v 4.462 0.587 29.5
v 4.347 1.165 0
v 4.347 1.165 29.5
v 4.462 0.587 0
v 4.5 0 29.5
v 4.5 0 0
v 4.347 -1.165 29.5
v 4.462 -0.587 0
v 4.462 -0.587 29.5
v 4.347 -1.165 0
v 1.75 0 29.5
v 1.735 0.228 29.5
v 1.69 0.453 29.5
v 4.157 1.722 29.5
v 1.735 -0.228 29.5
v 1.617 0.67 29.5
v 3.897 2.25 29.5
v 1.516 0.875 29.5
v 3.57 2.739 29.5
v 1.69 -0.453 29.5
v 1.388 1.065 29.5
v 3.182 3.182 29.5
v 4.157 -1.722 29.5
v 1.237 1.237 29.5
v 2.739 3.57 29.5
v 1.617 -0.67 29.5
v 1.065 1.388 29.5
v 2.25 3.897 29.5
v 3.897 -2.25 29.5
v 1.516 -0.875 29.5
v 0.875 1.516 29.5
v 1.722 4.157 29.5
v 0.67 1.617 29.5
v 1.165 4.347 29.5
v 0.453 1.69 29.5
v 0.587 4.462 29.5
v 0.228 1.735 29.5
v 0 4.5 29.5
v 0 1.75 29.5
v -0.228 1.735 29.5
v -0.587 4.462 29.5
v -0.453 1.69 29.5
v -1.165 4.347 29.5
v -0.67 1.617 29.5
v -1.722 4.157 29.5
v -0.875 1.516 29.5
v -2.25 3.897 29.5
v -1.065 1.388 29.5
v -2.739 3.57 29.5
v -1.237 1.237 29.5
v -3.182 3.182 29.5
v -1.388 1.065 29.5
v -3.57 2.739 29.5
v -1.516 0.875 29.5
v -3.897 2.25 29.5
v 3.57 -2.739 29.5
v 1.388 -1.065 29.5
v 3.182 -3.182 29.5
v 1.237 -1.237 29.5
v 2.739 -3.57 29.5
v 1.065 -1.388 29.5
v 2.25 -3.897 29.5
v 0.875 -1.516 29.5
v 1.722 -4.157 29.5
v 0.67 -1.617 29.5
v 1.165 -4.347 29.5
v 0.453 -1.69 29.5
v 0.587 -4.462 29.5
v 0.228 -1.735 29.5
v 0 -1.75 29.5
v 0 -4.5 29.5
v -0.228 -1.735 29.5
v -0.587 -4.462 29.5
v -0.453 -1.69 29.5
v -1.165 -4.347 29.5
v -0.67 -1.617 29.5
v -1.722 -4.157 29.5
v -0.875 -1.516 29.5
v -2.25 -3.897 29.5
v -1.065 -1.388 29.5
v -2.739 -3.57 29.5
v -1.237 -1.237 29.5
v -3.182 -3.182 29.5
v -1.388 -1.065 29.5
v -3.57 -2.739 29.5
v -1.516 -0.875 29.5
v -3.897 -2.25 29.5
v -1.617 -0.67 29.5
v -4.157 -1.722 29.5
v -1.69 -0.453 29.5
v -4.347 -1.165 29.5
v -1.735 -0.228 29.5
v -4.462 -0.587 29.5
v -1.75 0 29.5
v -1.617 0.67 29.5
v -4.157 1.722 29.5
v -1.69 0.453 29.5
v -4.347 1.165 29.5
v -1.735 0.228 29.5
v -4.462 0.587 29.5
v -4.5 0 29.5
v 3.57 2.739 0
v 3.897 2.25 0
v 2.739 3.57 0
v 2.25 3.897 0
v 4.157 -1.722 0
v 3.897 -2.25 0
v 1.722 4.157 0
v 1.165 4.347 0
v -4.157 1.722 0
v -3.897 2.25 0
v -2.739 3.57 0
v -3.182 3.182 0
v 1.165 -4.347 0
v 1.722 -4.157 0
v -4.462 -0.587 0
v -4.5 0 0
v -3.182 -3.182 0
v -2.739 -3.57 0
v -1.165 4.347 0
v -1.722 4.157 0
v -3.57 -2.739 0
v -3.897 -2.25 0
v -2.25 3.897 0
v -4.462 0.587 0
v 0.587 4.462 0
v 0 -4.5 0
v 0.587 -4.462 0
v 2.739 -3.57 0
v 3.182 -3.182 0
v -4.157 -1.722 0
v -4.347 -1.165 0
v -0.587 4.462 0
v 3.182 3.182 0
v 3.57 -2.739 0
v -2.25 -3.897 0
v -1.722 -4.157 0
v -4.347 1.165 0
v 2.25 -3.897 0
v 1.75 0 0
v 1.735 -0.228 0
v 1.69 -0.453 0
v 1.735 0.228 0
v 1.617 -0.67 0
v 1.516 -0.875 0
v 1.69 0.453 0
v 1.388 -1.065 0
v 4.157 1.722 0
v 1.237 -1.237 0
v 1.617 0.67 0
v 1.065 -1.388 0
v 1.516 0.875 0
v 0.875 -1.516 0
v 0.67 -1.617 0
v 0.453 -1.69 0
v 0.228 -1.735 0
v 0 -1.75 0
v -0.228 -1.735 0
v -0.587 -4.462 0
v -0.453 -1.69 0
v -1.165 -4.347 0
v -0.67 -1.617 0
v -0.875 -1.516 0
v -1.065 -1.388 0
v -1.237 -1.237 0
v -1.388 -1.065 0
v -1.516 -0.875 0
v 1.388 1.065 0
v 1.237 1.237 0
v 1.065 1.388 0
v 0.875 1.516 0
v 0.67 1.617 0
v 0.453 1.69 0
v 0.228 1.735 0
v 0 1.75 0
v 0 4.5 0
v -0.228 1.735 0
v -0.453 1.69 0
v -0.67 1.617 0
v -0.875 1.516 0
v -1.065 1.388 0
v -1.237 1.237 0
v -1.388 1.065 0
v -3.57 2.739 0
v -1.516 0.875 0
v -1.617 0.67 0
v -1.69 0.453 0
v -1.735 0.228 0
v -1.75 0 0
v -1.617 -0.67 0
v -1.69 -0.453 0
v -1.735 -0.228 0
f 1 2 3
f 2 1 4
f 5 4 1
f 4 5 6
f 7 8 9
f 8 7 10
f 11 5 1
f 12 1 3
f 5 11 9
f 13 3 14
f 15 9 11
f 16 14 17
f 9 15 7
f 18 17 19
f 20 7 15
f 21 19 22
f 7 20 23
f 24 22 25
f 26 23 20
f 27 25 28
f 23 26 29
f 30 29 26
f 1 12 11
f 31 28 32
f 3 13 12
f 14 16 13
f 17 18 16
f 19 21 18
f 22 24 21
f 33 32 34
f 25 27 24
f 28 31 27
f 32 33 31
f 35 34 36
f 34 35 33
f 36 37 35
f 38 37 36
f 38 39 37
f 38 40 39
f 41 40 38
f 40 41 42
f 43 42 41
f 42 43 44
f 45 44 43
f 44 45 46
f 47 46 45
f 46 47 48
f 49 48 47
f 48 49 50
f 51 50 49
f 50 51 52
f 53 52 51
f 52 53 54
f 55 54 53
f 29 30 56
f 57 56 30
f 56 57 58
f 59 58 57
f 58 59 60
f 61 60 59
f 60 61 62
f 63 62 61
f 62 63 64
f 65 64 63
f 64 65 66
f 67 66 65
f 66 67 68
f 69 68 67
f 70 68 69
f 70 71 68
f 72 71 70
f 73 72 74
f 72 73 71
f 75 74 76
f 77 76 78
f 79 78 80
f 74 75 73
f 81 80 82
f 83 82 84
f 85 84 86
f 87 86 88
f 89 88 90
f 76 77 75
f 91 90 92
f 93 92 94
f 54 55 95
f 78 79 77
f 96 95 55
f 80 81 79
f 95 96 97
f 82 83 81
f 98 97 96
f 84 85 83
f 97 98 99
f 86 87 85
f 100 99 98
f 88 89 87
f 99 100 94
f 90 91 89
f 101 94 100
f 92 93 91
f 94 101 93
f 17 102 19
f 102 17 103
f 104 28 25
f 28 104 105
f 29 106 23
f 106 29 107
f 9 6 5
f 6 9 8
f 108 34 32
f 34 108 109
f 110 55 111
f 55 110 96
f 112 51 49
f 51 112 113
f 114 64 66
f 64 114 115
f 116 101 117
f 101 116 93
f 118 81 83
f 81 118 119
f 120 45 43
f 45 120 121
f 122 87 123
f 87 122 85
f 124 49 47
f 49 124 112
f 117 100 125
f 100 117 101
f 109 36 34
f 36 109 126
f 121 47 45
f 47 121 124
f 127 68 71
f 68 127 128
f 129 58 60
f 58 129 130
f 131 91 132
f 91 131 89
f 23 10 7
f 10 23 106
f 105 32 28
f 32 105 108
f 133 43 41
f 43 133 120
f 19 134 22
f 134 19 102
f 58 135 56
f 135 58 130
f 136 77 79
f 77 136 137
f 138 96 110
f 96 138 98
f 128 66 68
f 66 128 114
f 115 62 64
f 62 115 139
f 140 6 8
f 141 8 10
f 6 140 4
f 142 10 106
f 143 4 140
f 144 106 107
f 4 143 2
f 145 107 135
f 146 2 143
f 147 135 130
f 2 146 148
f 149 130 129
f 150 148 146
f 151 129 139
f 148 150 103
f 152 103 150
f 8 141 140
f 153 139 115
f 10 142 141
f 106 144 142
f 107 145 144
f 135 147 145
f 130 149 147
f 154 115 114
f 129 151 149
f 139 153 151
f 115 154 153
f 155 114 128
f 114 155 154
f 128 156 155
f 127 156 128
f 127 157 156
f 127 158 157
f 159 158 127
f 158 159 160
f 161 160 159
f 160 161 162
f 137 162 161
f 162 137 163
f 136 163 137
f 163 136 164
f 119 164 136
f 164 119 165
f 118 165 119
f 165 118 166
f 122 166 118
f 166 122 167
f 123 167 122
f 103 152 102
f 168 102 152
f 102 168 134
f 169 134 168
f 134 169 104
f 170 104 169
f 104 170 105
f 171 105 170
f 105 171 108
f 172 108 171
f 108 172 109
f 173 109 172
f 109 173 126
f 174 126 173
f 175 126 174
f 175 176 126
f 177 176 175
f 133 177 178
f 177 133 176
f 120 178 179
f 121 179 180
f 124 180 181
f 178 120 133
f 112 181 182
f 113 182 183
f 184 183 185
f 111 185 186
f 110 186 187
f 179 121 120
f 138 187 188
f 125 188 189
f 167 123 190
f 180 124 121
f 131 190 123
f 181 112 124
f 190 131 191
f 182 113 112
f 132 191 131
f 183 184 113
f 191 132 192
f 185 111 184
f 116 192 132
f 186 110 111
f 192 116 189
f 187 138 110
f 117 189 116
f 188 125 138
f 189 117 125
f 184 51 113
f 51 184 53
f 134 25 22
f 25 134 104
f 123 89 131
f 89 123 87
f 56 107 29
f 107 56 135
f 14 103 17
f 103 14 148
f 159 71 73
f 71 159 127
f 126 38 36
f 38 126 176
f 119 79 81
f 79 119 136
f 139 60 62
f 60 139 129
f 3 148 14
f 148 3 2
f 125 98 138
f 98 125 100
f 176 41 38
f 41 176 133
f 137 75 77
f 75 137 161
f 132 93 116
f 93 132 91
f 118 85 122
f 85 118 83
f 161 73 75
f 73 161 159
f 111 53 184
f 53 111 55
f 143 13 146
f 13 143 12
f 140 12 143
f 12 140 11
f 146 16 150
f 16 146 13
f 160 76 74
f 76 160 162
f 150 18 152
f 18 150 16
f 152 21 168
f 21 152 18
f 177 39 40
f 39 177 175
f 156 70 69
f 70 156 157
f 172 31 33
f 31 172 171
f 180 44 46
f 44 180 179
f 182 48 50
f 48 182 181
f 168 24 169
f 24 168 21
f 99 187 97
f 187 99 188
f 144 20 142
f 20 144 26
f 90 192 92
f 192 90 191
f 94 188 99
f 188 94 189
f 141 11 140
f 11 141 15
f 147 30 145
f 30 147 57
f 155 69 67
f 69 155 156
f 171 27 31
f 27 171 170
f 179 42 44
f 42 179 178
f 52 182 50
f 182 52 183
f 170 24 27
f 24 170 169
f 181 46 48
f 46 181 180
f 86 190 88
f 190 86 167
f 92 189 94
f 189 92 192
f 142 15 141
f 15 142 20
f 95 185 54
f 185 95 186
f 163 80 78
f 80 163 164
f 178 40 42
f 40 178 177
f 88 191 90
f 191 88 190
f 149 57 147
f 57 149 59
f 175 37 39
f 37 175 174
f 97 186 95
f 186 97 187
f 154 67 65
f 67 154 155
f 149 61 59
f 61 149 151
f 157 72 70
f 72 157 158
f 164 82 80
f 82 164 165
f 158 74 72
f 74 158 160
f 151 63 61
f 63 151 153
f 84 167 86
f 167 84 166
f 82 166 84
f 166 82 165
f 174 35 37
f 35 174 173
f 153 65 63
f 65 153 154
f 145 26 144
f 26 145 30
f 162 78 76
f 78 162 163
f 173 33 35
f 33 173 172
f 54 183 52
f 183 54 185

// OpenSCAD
// file: parameters.scad
// =============================================================================
// Gen-CA — nightly 2026-10-13 (physics_scorer, honest magpylib watts)
// Break the plate limit instead of the physics: the 2026-10-11 scans showed watts keep rising with machine size, but Ø194 was the largest one-piece stator/rotor set that fits one 410 mm plate. Gen-CA makes the steel disc the structural rotor and prints the magnet carrier as 8 bolt-on arcs per rotor plus a separate D-flat hub, opens the stator centre, and prints the 12 bobbin bases in place inside their stator bays, so a much bigger R84 / Ø226 machine (bobbins r64–104, 4.95 mm copper, 7.55 mm magnet gap) still packs on ONE plate.
// Clocking 0 deg (magnets N facing S) + D-flat keyed bore + index notch + flip-symmetric hole map.
// Windable 2-piece bobbin; turns = physics_scorer turns_fit; copper only between flanges.
// Steel back-iron: 2× Ø194 × 4.76 mm (3/16") mild-steel discs (steel_backiron_disc.dxf); magnets sit ON the steel
// (through-pockets) -> score with --back-iron. Night 2026-10-13.
// =============================================================================
topology            = "dual_rotor";

// --- Wire / winding (physics_scorer winding-fit) -------------------------------
wire_awg            = 26;
wire_od             = 0.45;     // insulated OD mm (bare 0.405)
fill_realistic      = 0.65;     // insulated-wire area / window (DENSE layered wind with a jig; scorer cap 0.65)
turns               = 366;       // = physics_scorer turns_fit (do NOT raise)
coil_former_type    = "bobbin";
coil_core_inset     = 18.10;     // radial copper build: hub = copper boundary inset by this
wind_build_axial    = 0.0;      // nothing proud of the flanges
wind_build_radial   = 0.0;

// --- Bobbin (base + lid) ---------------------------------------------------------
coil_id_r           = 64.00;    // copper boundary sector
coil_od_r           = 104.00;
span_deg            = 26.87;    // = pitch - 2*asin((wall+0.85)/coil_id_r) -> >=1.2 mm stator web
former_web          = 4.95;     // copper height between flanges (TALL copper: steel keeps Bz up)
flange_t            = 0.80;     // >= 0.8 mm FDM wall rule (tall winds push on the flanges)
wall                = 0.80;     // flange lip beyond copper
former_bare_h       = former_web + 2 * flange_t;
coil_envelope_h     = former_bare_h + 2 * wind_build_axial;
tab_w               = 7.0;
tab_len             = 7.0;
tab_h               = former_bare_h / 2;
pin_d               = 1.9;      // 1.75 mm filament locating pin
coil_mount_r        = coil_od_r + 0.2 + 4.0;
lead_y              = 1.6;
lead_slot_w         = 0.9;
lead_groove_d       = 0.6;

// --- Gap -------------------------------------------------------------------------
run_clear           = 0.50;     // rotor face -> flange
gap_spacer_h        = run_clear + wind_build_axial;
m2m                 = coil_envelope_h + 2 * run_clear;   // rotor face to rotor face (= gap_sleeve length)

// --- Stator ----------------------------------------------------------------------
coil_stations       = 12;
bay_clear           = 0.35;     // 0.35 mm: bobbin BASES print IN PLACE inside the stator bays (print-in-place gap), then pop out
stator_thick        = former_bare_h;                        // bobbins flush both faces
stator_od           = 226;
shaft_clear_stator  = 14.0;     // stator is static; gap sleeve OD 12 spins inside
stator_ir           = 58.85;    // ANNULAR stator: open centre (nested one-plate pack); inner rim 4.0 mm

// --- Rotor(s) --------------------------------------------------------------------
magnet_Br           = 1.43;     // N52
magnet_d_large      = 20.0;
magnet_h_large      = 5.0;      // one O20x5 per pocket
magnet_h_small      = 5.0;      // unused: no O5 pockets in this kit
halbach_magnetisation = "none";  // NO O5 assist magnets in this kit (scan: they lower the 4-pole score)
rotor_b_same_axis   = true;     // same-index magnets share one axis: N faces S across the gap
large_pocket_d      = 20.3;
small_pocket_d      = 5.3;
pocket_h            = 5.00;     // THROUGH the carrier: magnet back face sits on the steel disc (FLUSH seat: carrier = magnet height, magnet face level with the rotor face)
large_n             = 8;
R_large             = 84.0;
small_r_list        = [];       // no O5 pockets
carrier_od          = 194.0;
ring_ir             = 70.85;    // RING rotor: PLA magnet ring r ring_ir..carrier_od/2 (steel disc = structural rotor)
hub_flange_od       = 74.0;     // separate rotor_hub flange (inside the ring, flush with the ring face)
csk_d               = 6.6;      // M3 countersunk head pocket (ISO 10642 head 6.0 nominal) on the stator face
csk_depth           = 1.55;     // = (csk_d - m3_clear) / 2: 90 deg cone; head sits 0.3 mm below the face
n_seg               = 8;        // magnet-carrier ARCS per rotor (segmented carrier)
seg_deg             = 360 / n_seg;
seg_start           = -22.5;   // arc edge angle (between pocket 0 and its clamp bolt)
seg_kerf_deg        = 0.4;      // gap between neighbouring arcs on the steel
carrier_thick       = pocket_h;
hub_h               = 12.0;     // > steel_t + insert: radial set-screw clears the steel
hub_od              = 24.0;     // slim hub so the M4 brace rods fit at R~18 inside the coil ring
hub_insert_d        = 4.0;      // M3 heat-set insert, radial, bears on the D-flat
rotor_b_offset_deg  = 0.0;      // CLOCKING: magnets directly opposite
shaft_key           = "dflat";
dflat_depth         = 0.5;      // 8 mm shaft with 0.5 mm flat (7.5 across flat)
index_notch_d       = 3.0;

// --- Steel back-iron (buyable laser-cut) -------------------------------------------
steel_t             = 4.76;      // mild steel thickness (image method ignores it; sized from steel_flux.py so the return path stays well below saturation)
steel_center_hole   = 26.0;     // slips over the rotor hub (OD 24)
steel_od            = carrier_od;   // steel disc OD = rotor carrier OD

// --- Modular MAX interface ----------------------------------------------------------
shaft_bore          = 8.35;
dflat_x             = 4.0 - dflat_depth + (shaft_bore - 8.0) / 2;
bearing_d           = 21.85;
bearing_h           = 7.2;
m3_clear            = 3.5;
bolt_r_inner        = 30.0;     // M3 steel-disc clamp bolts (inside the magnet ring)
bolt_n_inner        = 4;
bolt_inner_angles   = [0, 90, 180, 270];
bolt_r_outer        = 84.0;     // second M3 steel-disc clamp ring
bolt_outer_angles   = [22.5, 67.5, 112.5, 157.5, 202.5, 247.5, 292.5, 337.5];
flange_bolt_r       = 107.5;     // frame rods: OUTSIDE the rotor OD (rotors spin inside them)
flange_bolt_n       = 4;
flange_bolt_offset  = 45.00;    // between coil stations -> never cuts a lead groove/tab
brace_r             = 18.0;
brace_d             = 4.3;      // temporary M4 jack rods (assembly only)
brace_n             = 4;
brace_angles        = [45, 135, 225, 315];          // flip-symmetric

spacer_pad_od       = 14.0;
spacer_pad_id       = m3_clear;
endbell_od          = 225.0;
endbell_thick       = 8.0;
endbell_shaft_clear = 10.0;
collar_h            = 10.0;
standoff_od         = 9.0;
frame_standoff_h    = run_clear + carrier_thick + hub_h + collar_h + 2.0;
sleeve_od           = 12.0;
plate_max_mm        = 410;

$fn = 64;
// main file
// Gen-CA — frame standoff tube between stator and an endbell, on each M3 frame rod (outside rotor OD).
// Print x4. Height = frame_standoff_h (rotor + steel + hub + collar + running clearance).
include <parameters.scad>;
$fn = 48;
difference() {
    cylinder(d=standoff_od, h=frame_standoff_h);
    translate([0, 0, -0.1]) cylinder(d=m3_clear, h=frame_standoff_h + 0.2);
}
